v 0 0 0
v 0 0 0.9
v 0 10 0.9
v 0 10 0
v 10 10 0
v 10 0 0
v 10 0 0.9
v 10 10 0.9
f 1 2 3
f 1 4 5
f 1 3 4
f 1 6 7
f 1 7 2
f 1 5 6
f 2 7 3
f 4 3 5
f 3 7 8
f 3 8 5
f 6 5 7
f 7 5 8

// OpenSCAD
/* Warning, this is a very basic generator with a lot of approximation 
input data : [VQFN, 6ZW, 10x10x0.9mm, 132, , A, C04-00639A]
generated by com.zoubworld.electronics.cad.model3d.Basic
Date : Sun Feb 15 10:50:49 CET 2026
*/

//body
color("black")
translate([0,0,0])
cube([10.0,10.0,0.9], center=false);
